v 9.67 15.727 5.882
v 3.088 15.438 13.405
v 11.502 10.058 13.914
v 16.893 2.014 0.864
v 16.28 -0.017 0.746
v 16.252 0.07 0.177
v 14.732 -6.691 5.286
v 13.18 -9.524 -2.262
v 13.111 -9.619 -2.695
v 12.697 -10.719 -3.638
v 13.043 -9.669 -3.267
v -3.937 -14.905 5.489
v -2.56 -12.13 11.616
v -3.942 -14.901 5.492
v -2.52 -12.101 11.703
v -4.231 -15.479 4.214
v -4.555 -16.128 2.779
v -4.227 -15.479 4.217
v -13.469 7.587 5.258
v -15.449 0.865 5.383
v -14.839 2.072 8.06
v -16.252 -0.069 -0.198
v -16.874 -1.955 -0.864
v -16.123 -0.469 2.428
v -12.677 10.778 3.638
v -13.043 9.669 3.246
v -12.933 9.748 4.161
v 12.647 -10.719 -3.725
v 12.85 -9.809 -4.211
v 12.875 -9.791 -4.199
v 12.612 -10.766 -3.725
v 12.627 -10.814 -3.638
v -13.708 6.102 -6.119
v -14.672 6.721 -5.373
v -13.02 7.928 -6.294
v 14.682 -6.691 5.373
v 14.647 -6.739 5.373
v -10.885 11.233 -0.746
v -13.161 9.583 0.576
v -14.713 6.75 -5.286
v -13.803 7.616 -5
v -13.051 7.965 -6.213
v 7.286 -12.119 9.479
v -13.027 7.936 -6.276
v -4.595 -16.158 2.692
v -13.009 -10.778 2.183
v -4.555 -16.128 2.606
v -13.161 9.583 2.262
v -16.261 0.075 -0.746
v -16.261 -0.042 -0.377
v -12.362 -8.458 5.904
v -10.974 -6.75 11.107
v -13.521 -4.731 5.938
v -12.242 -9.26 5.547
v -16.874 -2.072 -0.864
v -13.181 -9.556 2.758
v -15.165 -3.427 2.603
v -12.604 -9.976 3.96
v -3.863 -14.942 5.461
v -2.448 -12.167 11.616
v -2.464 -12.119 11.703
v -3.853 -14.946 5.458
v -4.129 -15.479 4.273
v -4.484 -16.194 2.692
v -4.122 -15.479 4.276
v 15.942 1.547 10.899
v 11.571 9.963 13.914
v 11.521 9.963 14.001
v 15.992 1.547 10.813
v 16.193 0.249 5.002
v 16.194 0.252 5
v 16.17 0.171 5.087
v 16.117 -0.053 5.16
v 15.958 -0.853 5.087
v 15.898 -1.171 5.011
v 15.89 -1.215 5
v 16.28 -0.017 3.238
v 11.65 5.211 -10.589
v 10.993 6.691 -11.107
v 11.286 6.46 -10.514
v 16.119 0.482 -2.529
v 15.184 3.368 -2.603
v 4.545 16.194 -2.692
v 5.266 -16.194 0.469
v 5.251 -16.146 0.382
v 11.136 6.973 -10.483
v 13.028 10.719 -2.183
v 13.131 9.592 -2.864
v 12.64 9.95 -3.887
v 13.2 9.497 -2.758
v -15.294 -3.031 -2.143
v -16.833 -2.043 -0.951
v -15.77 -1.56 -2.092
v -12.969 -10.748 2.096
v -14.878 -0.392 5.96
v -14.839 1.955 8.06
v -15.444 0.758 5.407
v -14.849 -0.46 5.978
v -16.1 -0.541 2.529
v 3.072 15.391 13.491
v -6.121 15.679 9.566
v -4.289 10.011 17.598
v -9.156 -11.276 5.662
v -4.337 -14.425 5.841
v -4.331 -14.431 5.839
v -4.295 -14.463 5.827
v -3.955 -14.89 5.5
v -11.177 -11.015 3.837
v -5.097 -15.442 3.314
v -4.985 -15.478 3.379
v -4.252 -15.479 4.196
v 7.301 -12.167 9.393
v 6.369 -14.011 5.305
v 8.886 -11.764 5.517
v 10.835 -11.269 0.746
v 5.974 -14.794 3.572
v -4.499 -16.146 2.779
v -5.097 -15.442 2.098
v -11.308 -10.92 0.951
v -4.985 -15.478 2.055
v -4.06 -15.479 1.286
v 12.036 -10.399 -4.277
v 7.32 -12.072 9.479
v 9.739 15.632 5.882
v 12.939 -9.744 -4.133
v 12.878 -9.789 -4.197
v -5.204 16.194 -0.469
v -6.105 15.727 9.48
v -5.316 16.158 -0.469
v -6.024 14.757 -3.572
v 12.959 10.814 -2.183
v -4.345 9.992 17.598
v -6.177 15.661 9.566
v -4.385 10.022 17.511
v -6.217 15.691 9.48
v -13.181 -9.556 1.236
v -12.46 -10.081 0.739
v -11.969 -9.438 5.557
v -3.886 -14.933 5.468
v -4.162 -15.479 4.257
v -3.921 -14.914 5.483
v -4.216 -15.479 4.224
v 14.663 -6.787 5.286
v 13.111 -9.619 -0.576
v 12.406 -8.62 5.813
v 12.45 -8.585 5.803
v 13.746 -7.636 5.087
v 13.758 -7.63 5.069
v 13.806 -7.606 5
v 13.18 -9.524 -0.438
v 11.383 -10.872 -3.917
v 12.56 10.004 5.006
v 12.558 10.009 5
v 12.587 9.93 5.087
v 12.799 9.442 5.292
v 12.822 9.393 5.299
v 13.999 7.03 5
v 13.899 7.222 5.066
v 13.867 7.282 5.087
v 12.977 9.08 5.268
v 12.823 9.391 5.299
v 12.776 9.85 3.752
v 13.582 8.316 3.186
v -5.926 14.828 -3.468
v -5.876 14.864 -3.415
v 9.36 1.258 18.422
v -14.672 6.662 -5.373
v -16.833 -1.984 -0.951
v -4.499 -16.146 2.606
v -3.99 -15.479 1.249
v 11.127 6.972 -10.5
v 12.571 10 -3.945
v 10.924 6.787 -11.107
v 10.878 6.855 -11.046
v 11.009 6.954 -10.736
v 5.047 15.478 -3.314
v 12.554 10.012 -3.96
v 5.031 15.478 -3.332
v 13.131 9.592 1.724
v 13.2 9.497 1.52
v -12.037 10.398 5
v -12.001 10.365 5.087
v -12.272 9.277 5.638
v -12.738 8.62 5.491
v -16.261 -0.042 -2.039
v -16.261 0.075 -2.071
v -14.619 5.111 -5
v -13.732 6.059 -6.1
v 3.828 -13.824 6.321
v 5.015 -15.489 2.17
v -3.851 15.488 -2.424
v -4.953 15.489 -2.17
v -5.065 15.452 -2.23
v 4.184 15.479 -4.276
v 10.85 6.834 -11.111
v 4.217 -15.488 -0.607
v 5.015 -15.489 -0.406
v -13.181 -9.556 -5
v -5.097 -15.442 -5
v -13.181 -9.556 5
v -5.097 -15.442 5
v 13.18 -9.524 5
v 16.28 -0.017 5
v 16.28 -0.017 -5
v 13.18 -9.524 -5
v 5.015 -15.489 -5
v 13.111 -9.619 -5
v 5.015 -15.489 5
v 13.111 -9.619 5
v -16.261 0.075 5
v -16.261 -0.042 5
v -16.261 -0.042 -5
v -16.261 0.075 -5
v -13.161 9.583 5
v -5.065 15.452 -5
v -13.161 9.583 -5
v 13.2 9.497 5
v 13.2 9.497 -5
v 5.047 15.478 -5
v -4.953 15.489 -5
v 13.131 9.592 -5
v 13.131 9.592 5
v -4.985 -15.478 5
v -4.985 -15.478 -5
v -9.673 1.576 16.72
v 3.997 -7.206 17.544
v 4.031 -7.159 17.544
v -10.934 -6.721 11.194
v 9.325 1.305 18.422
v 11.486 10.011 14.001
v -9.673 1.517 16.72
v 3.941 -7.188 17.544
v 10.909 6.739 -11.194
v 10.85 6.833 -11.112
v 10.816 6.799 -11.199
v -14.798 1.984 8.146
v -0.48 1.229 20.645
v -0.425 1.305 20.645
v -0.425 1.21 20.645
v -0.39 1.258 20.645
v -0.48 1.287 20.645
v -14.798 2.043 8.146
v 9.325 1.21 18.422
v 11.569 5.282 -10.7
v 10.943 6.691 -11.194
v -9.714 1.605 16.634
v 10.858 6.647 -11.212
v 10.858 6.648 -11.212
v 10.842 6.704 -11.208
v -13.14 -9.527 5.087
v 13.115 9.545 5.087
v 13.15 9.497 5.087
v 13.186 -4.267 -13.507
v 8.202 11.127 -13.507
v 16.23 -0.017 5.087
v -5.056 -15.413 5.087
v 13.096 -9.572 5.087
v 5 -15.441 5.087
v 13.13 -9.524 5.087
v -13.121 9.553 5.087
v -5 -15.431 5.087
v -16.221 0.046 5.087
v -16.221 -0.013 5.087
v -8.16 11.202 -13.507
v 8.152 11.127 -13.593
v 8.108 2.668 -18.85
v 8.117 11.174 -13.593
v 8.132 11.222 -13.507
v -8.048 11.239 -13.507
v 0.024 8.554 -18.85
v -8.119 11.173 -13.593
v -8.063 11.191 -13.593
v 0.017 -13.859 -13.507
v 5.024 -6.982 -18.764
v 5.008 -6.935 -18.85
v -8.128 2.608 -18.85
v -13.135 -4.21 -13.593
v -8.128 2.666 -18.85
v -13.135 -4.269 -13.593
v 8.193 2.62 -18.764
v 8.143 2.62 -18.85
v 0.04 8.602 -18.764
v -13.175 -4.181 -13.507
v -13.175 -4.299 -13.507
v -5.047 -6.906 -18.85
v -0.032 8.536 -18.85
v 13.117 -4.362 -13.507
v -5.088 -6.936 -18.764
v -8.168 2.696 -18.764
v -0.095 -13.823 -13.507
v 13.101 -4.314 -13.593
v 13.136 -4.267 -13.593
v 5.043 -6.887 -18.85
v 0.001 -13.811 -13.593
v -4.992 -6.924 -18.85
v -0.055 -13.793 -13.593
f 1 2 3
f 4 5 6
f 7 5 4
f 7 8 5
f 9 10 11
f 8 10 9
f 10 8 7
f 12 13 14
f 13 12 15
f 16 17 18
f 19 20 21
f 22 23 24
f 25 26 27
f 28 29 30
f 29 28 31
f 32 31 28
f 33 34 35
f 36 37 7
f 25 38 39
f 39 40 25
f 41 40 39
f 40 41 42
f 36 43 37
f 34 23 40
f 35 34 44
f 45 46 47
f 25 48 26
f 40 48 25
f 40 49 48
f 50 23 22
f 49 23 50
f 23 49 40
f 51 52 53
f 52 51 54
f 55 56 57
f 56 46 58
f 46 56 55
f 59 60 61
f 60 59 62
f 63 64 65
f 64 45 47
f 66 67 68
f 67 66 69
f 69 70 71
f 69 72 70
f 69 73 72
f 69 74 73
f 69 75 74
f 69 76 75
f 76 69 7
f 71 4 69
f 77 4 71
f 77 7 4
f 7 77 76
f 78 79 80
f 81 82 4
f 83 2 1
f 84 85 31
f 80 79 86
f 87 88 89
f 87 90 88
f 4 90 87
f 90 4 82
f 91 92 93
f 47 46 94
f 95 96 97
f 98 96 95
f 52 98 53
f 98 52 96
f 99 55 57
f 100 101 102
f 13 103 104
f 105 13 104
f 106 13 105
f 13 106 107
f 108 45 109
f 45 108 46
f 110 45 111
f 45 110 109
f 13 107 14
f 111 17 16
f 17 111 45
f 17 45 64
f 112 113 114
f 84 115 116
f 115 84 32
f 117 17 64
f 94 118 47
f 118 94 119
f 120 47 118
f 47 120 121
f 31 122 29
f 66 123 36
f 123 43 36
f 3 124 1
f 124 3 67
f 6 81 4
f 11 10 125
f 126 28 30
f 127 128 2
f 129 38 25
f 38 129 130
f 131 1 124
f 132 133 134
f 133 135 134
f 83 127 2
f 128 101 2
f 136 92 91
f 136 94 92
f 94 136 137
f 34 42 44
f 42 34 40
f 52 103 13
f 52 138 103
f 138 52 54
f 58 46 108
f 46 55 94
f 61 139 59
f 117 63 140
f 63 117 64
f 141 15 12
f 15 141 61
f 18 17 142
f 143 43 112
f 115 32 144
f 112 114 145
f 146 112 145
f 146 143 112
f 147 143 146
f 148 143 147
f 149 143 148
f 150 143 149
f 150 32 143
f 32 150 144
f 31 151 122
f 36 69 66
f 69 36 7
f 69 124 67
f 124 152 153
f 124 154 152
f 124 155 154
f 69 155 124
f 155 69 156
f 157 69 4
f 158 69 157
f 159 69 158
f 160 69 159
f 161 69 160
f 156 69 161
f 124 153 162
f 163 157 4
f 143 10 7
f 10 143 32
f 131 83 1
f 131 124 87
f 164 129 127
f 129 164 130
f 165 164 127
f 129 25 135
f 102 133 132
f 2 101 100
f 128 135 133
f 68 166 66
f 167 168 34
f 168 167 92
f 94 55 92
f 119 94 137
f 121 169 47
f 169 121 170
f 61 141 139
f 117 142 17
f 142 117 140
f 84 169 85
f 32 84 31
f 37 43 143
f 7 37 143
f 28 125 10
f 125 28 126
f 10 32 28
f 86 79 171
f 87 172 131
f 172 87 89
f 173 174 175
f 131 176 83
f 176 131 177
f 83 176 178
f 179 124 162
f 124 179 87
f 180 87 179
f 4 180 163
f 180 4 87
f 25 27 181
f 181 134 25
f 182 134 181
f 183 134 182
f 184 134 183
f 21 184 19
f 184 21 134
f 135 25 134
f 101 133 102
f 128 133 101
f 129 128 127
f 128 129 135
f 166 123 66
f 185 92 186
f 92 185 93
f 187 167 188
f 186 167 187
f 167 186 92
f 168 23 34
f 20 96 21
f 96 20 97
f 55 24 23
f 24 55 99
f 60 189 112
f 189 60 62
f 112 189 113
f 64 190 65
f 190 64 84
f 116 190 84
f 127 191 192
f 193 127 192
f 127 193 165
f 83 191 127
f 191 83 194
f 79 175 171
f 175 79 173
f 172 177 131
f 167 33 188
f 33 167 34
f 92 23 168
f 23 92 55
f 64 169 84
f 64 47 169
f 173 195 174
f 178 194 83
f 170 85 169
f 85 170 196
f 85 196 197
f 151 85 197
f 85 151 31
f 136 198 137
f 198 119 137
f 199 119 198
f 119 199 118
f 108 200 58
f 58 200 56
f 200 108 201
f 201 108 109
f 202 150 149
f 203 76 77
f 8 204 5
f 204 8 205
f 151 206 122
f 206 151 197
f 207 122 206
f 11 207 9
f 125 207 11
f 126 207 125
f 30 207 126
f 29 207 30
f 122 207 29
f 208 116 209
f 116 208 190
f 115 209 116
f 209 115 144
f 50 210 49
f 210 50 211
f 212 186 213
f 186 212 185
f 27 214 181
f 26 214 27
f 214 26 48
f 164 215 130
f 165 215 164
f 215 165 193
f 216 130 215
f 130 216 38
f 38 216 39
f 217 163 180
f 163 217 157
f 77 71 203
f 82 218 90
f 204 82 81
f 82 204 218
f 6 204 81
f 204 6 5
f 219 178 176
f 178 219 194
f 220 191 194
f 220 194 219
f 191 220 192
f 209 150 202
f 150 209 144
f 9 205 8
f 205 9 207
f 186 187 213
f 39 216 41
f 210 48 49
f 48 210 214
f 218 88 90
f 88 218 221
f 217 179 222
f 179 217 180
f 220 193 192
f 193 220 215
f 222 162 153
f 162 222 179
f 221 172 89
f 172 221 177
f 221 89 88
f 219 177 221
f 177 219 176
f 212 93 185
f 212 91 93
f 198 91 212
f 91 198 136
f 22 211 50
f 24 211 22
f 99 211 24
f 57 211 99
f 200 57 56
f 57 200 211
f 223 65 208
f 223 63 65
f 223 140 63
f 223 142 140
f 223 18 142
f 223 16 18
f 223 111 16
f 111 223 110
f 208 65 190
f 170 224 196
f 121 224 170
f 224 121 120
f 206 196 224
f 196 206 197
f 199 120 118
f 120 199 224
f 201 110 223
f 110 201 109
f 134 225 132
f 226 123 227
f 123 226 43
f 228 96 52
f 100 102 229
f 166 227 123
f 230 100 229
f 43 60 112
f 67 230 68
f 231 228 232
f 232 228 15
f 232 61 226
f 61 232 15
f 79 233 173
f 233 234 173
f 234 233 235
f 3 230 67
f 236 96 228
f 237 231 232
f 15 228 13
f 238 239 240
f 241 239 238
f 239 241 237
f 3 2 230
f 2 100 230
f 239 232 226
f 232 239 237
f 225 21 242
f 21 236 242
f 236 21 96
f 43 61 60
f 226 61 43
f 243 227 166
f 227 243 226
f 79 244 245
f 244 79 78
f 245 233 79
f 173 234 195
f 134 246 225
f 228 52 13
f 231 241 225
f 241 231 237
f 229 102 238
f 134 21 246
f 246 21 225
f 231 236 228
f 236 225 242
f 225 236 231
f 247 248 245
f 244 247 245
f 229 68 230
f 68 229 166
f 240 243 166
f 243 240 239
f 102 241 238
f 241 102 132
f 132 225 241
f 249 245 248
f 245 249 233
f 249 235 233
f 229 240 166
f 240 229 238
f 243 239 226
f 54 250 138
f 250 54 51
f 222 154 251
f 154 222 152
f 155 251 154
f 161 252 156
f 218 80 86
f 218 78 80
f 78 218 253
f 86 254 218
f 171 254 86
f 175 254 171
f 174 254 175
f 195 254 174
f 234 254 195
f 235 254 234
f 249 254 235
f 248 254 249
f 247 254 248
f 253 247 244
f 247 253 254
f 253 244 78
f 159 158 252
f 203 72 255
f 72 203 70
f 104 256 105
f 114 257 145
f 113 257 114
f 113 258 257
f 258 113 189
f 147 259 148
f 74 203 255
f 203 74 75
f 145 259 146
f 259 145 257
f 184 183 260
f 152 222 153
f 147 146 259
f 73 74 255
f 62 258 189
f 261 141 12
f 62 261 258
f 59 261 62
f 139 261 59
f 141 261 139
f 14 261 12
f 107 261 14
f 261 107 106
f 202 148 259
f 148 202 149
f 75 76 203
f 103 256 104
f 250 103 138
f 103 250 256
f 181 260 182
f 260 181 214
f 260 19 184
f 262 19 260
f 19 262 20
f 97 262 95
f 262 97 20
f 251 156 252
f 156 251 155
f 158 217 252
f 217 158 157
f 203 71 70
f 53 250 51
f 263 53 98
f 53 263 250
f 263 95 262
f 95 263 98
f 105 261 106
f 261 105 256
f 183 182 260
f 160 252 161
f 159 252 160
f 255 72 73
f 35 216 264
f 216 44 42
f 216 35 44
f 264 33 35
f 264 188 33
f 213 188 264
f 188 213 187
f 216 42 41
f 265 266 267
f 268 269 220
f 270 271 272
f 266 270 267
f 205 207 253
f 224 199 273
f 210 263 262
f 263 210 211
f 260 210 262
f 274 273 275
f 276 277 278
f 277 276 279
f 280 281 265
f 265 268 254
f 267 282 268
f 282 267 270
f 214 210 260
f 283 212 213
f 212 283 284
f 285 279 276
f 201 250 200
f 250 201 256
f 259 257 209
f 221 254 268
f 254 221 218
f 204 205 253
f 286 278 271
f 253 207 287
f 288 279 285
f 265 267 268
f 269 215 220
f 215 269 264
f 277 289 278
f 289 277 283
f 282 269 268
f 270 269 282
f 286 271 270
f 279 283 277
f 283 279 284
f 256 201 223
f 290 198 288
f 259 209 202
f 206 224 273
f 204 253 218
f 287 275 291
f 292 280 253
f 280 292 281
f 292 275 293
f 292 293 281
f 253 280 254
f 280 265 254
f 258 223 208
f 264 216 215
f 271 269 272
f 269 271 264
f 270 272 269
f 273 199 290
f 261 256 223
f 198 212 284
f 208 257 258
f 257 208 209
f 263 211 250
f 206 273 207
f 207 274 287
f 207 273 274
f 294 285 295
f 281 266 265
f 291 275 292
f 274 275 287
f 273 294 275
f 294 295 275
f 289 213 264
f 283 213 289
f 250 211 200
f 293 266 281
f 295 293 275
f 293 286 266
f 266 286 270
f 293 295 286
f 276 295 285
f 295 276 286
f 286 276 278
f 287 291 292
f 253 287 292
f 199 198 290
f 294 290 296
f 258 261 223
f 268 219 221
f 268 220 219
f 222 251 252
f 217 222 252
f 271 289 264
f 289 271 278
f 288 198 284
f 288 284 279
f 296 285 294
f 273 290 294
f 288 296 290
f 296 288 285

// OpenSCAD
// Auto-generated OpenSCAD file

    inner_points = 10*[[1.3099900587146427, 0.9497157652788513, -0.4999999999995077], [1.3099900587145388, 0.9497157652784762, 0.5000000000004923], [-1.3099900587145388, -0.9497157652784762, -0.5000000000004923], [-1.3099900587146427, -0.9497157652788513, 0.4999999999995077], [1.6180331406628494, -0.001656643225752208, -0.4999999999998327], [1.6180331406627457, -0.0016566432261273523, 0.5000000000001673], [0.5015752992619325, 1.5383290310986224, -0.49999999999937084], [0.5015752992618286, 1.5383290310982474, 0.5000000000006292], [-0.5015752992618286, -1.5383290310982474, -0.5000000000006292], [-0.5015752992619325, -1.5383290310986224, 0.49999999999937084], [-1.6180331406627457, 0.0016566432261273523, -0.5000000000001673], [-1.6180331406628494, 0.001656643225752208, 0.4999999999998327], [1.3080425578016073, -0.9523962703252791, -0.5000000000002215], [1.3080425578015036, -0.9523962703256543, 0.49999999999977845], [-0.49842417659141613, 1.5393528929194857, -0.49999999999947425], [-0.49842417659151983, 1.5393528929191105, 0.5000000000005257], [0.49842417659151983, -1.5393528929191105, -0.5000000000005257], [0.49842417659141613, -1.5393528929194857, 0.49999999999947425], [-1.3080425578015036, 0.9523962703256543, -0.49999999999977845], [-1.3080425578016073, 0.9523962703252791, 0.5000000000002215], [0.8101566572239665, 1.1126874591532696, -1.3506508083515383], [-1.3094517827007117, -0.4239849287192254, -1.350650808352335], [1.308580833815434, -0.42666543376602845, -1.350650808352064], [-0.0014092248991565137, -1.3763811990446921, -1.3506508083525566], [-0.8078764834388312, 1.1143441023792096, -1.3506508083517057], [0.8092857083384629, 0.2620370966671998, -1.876381920470991], [-0.5007043503761278, -0.687678668611464, -1.8763819204714836], [0.000870948885752787, 0.850650362486971, -1.8763819204708543], [-0.8087474323243347, 0.2636937398931396, -1.8763819204711585], [0.4992951254772207, -0.688702530432327, -1.87638192047138], [0.5007043503762161, 0.6876786686117831, 1.0257311121194437], [-0.8092857083383747, -0.2620370966668807, 1.0257311121189512], [0.808747432324423, -0.2636937398928205, 1.0257311121191186], [-0.0008709488856644687, -0.8506503624866519, 1.0257311121188144], [-0.49929512547713234, 0.6887025304326461, 1.0257311121193402]];

    outer_points = 10*[[1.6792886560853284, 0.2013716374572302, 0.08644687340106805], [1.4757777400560284, -0.2013716374572302, -0.8059550324508248], [-1.4757777400560284, 0.2013716374572302, 0.8059550324508248], [-1.6792886560853284, -0.2013716374572302, -0.08644687340106805], [1.2928432796682825, 1.0718860131747094, -0.21829021445516045], [1.0893323636389824, 0.6691427382602492, -1.1106921203070534], [1.4631699692206952, -0.6691427382602492, 0.5285977920443675], [1.2596590531913952, -1.0718860131747094, -0.36380411380752536], [-1.2596590531913952, 1.0718860131747094, 0.36380411380752536], [-1.4631699692206952, 0.6691427382602492, -0.5285977920443675], [-1.0893323636389824, -0.6691427382602492, 1.1106921203070534], [-1.2928432796682825, -1.0718860131747094, 0.21829021445516045], [0.451442838965622, 1.609893485063508, -0.26921426159590167], [0.24793192293632205, 1.2071502101490479, -1.1616161674477947], [0.7270372118526772, -1.2071502101490479, 0.9392759187099872], [0.5235262958233773, -1.609893485063508, 0.046874012858094255], [-0.5235262958233773, 1.609893485063508, -0.046874012858094255], [-0.7270372118526772, 1.2071502101490479, -0.9392759187099872], [-0.24793192293632205, -1.2071502101490479, 1.1616161674477947], [-0.451442838965622, -1.609893485063508, 0.26921426159590167], [1.5892095552954468, 0.15465966592254854, 1.081285426793642], [-0.9632927775642309, 0.15465966592254854, 1.6633797550563276], [0.9639278014574195, 1.5631815135288265, 0.5882104610096014], [-0.6136053966132589, 1.5631815135288265, 0.9479645405344798], [0.39812173364181414, -0.715854709794931, 1.7457765941747487], [1.1470922329142266, 0.9963044555500771, 1.3913923782528013], [-0.43044096515645186, 0.9963044555500771, 1.7511464577776796], [0.9309735460495933, 0.1257900798325976, 1.8335432968961007], [-0.04399558873940601, 0.1257900798325976, 2.055883545633908], [0.30569179221156606, 1.5343119274388755, 1.3404683311120602], [0.60355769038524, -0.6537105631857435, -0.9920240551898661], [-0.9739755076854384, -0.6537105631857435, -0.6322699756649878], [0.21711231396819408, 0.21680381253173597, -1.2967611430460946], [-0.7578568208208052, 0.21680381253173597, -1.0744208943082874], [-0.13257506698277793, -1.1917180350745418, -0.5813459285242466]];

    // Convex hull for inner set (I)
    module inner_hull() {
        hull() {
            for (p = inner_points) {
                translate(p) sphere(r=0.1);
            }
        }
    }

    // Convex hull for outer set (O) minus inner hull (O \ I)
    module outer_minus_inner() {
        difference() {
            hull() {
                for (p = outer_points) {
                    translate(p) sphere(r=0.1);
                }
            }
            inner_hull(); // Subtract inner hull
        }
    }

    // Convex hull for outer set (O) minus all translated inner hulls
    module outer_minus_AllTranslationInner() {
        difference() {
            hull() {
                for (p = outer_points) {
                    translate(p) sphere(r=0.1);
                }
            }
            hull() {
                translate([0,0,50]) inner_hull();
                translate([0,0,-50]) inner_hull();
            }; // Subtract translated inner hulls
        }
    }

    // Difference between outer_minus_inner and outer_minus_AllTranslationInner
    module outer_minus_inner_diff() {
        difference() {
            // Outer minus inner
            difference() {
                hull() {
                    for (p = outer_points) {
                        translate(p) sphere(r=0.1);
                    }
                }
                inner_hull();
            }

            // Subtract Outer minus AllTranslationInner
            difference() {
                hull() {
                    for (p = outer_points) {
                        translate(p) sphere(r=0.1);
                    }
                }
                hull() {
                    translate([0,0,50]) inner_hull();
                    translate([0,0,-50]) inner_hull();
                };
            }
        }
    }

    // Rendering all with colors applied
    color([1, 0, 0, 0.5]) inner_hull(); // Transparent red
    color([0, 1, 0, 1]) outer_minus_AllTranslationInner(); // Opaque green
    color([1, 1, 0, 1]) outer_minus_inner_diff(); // Opaque yellow
    
